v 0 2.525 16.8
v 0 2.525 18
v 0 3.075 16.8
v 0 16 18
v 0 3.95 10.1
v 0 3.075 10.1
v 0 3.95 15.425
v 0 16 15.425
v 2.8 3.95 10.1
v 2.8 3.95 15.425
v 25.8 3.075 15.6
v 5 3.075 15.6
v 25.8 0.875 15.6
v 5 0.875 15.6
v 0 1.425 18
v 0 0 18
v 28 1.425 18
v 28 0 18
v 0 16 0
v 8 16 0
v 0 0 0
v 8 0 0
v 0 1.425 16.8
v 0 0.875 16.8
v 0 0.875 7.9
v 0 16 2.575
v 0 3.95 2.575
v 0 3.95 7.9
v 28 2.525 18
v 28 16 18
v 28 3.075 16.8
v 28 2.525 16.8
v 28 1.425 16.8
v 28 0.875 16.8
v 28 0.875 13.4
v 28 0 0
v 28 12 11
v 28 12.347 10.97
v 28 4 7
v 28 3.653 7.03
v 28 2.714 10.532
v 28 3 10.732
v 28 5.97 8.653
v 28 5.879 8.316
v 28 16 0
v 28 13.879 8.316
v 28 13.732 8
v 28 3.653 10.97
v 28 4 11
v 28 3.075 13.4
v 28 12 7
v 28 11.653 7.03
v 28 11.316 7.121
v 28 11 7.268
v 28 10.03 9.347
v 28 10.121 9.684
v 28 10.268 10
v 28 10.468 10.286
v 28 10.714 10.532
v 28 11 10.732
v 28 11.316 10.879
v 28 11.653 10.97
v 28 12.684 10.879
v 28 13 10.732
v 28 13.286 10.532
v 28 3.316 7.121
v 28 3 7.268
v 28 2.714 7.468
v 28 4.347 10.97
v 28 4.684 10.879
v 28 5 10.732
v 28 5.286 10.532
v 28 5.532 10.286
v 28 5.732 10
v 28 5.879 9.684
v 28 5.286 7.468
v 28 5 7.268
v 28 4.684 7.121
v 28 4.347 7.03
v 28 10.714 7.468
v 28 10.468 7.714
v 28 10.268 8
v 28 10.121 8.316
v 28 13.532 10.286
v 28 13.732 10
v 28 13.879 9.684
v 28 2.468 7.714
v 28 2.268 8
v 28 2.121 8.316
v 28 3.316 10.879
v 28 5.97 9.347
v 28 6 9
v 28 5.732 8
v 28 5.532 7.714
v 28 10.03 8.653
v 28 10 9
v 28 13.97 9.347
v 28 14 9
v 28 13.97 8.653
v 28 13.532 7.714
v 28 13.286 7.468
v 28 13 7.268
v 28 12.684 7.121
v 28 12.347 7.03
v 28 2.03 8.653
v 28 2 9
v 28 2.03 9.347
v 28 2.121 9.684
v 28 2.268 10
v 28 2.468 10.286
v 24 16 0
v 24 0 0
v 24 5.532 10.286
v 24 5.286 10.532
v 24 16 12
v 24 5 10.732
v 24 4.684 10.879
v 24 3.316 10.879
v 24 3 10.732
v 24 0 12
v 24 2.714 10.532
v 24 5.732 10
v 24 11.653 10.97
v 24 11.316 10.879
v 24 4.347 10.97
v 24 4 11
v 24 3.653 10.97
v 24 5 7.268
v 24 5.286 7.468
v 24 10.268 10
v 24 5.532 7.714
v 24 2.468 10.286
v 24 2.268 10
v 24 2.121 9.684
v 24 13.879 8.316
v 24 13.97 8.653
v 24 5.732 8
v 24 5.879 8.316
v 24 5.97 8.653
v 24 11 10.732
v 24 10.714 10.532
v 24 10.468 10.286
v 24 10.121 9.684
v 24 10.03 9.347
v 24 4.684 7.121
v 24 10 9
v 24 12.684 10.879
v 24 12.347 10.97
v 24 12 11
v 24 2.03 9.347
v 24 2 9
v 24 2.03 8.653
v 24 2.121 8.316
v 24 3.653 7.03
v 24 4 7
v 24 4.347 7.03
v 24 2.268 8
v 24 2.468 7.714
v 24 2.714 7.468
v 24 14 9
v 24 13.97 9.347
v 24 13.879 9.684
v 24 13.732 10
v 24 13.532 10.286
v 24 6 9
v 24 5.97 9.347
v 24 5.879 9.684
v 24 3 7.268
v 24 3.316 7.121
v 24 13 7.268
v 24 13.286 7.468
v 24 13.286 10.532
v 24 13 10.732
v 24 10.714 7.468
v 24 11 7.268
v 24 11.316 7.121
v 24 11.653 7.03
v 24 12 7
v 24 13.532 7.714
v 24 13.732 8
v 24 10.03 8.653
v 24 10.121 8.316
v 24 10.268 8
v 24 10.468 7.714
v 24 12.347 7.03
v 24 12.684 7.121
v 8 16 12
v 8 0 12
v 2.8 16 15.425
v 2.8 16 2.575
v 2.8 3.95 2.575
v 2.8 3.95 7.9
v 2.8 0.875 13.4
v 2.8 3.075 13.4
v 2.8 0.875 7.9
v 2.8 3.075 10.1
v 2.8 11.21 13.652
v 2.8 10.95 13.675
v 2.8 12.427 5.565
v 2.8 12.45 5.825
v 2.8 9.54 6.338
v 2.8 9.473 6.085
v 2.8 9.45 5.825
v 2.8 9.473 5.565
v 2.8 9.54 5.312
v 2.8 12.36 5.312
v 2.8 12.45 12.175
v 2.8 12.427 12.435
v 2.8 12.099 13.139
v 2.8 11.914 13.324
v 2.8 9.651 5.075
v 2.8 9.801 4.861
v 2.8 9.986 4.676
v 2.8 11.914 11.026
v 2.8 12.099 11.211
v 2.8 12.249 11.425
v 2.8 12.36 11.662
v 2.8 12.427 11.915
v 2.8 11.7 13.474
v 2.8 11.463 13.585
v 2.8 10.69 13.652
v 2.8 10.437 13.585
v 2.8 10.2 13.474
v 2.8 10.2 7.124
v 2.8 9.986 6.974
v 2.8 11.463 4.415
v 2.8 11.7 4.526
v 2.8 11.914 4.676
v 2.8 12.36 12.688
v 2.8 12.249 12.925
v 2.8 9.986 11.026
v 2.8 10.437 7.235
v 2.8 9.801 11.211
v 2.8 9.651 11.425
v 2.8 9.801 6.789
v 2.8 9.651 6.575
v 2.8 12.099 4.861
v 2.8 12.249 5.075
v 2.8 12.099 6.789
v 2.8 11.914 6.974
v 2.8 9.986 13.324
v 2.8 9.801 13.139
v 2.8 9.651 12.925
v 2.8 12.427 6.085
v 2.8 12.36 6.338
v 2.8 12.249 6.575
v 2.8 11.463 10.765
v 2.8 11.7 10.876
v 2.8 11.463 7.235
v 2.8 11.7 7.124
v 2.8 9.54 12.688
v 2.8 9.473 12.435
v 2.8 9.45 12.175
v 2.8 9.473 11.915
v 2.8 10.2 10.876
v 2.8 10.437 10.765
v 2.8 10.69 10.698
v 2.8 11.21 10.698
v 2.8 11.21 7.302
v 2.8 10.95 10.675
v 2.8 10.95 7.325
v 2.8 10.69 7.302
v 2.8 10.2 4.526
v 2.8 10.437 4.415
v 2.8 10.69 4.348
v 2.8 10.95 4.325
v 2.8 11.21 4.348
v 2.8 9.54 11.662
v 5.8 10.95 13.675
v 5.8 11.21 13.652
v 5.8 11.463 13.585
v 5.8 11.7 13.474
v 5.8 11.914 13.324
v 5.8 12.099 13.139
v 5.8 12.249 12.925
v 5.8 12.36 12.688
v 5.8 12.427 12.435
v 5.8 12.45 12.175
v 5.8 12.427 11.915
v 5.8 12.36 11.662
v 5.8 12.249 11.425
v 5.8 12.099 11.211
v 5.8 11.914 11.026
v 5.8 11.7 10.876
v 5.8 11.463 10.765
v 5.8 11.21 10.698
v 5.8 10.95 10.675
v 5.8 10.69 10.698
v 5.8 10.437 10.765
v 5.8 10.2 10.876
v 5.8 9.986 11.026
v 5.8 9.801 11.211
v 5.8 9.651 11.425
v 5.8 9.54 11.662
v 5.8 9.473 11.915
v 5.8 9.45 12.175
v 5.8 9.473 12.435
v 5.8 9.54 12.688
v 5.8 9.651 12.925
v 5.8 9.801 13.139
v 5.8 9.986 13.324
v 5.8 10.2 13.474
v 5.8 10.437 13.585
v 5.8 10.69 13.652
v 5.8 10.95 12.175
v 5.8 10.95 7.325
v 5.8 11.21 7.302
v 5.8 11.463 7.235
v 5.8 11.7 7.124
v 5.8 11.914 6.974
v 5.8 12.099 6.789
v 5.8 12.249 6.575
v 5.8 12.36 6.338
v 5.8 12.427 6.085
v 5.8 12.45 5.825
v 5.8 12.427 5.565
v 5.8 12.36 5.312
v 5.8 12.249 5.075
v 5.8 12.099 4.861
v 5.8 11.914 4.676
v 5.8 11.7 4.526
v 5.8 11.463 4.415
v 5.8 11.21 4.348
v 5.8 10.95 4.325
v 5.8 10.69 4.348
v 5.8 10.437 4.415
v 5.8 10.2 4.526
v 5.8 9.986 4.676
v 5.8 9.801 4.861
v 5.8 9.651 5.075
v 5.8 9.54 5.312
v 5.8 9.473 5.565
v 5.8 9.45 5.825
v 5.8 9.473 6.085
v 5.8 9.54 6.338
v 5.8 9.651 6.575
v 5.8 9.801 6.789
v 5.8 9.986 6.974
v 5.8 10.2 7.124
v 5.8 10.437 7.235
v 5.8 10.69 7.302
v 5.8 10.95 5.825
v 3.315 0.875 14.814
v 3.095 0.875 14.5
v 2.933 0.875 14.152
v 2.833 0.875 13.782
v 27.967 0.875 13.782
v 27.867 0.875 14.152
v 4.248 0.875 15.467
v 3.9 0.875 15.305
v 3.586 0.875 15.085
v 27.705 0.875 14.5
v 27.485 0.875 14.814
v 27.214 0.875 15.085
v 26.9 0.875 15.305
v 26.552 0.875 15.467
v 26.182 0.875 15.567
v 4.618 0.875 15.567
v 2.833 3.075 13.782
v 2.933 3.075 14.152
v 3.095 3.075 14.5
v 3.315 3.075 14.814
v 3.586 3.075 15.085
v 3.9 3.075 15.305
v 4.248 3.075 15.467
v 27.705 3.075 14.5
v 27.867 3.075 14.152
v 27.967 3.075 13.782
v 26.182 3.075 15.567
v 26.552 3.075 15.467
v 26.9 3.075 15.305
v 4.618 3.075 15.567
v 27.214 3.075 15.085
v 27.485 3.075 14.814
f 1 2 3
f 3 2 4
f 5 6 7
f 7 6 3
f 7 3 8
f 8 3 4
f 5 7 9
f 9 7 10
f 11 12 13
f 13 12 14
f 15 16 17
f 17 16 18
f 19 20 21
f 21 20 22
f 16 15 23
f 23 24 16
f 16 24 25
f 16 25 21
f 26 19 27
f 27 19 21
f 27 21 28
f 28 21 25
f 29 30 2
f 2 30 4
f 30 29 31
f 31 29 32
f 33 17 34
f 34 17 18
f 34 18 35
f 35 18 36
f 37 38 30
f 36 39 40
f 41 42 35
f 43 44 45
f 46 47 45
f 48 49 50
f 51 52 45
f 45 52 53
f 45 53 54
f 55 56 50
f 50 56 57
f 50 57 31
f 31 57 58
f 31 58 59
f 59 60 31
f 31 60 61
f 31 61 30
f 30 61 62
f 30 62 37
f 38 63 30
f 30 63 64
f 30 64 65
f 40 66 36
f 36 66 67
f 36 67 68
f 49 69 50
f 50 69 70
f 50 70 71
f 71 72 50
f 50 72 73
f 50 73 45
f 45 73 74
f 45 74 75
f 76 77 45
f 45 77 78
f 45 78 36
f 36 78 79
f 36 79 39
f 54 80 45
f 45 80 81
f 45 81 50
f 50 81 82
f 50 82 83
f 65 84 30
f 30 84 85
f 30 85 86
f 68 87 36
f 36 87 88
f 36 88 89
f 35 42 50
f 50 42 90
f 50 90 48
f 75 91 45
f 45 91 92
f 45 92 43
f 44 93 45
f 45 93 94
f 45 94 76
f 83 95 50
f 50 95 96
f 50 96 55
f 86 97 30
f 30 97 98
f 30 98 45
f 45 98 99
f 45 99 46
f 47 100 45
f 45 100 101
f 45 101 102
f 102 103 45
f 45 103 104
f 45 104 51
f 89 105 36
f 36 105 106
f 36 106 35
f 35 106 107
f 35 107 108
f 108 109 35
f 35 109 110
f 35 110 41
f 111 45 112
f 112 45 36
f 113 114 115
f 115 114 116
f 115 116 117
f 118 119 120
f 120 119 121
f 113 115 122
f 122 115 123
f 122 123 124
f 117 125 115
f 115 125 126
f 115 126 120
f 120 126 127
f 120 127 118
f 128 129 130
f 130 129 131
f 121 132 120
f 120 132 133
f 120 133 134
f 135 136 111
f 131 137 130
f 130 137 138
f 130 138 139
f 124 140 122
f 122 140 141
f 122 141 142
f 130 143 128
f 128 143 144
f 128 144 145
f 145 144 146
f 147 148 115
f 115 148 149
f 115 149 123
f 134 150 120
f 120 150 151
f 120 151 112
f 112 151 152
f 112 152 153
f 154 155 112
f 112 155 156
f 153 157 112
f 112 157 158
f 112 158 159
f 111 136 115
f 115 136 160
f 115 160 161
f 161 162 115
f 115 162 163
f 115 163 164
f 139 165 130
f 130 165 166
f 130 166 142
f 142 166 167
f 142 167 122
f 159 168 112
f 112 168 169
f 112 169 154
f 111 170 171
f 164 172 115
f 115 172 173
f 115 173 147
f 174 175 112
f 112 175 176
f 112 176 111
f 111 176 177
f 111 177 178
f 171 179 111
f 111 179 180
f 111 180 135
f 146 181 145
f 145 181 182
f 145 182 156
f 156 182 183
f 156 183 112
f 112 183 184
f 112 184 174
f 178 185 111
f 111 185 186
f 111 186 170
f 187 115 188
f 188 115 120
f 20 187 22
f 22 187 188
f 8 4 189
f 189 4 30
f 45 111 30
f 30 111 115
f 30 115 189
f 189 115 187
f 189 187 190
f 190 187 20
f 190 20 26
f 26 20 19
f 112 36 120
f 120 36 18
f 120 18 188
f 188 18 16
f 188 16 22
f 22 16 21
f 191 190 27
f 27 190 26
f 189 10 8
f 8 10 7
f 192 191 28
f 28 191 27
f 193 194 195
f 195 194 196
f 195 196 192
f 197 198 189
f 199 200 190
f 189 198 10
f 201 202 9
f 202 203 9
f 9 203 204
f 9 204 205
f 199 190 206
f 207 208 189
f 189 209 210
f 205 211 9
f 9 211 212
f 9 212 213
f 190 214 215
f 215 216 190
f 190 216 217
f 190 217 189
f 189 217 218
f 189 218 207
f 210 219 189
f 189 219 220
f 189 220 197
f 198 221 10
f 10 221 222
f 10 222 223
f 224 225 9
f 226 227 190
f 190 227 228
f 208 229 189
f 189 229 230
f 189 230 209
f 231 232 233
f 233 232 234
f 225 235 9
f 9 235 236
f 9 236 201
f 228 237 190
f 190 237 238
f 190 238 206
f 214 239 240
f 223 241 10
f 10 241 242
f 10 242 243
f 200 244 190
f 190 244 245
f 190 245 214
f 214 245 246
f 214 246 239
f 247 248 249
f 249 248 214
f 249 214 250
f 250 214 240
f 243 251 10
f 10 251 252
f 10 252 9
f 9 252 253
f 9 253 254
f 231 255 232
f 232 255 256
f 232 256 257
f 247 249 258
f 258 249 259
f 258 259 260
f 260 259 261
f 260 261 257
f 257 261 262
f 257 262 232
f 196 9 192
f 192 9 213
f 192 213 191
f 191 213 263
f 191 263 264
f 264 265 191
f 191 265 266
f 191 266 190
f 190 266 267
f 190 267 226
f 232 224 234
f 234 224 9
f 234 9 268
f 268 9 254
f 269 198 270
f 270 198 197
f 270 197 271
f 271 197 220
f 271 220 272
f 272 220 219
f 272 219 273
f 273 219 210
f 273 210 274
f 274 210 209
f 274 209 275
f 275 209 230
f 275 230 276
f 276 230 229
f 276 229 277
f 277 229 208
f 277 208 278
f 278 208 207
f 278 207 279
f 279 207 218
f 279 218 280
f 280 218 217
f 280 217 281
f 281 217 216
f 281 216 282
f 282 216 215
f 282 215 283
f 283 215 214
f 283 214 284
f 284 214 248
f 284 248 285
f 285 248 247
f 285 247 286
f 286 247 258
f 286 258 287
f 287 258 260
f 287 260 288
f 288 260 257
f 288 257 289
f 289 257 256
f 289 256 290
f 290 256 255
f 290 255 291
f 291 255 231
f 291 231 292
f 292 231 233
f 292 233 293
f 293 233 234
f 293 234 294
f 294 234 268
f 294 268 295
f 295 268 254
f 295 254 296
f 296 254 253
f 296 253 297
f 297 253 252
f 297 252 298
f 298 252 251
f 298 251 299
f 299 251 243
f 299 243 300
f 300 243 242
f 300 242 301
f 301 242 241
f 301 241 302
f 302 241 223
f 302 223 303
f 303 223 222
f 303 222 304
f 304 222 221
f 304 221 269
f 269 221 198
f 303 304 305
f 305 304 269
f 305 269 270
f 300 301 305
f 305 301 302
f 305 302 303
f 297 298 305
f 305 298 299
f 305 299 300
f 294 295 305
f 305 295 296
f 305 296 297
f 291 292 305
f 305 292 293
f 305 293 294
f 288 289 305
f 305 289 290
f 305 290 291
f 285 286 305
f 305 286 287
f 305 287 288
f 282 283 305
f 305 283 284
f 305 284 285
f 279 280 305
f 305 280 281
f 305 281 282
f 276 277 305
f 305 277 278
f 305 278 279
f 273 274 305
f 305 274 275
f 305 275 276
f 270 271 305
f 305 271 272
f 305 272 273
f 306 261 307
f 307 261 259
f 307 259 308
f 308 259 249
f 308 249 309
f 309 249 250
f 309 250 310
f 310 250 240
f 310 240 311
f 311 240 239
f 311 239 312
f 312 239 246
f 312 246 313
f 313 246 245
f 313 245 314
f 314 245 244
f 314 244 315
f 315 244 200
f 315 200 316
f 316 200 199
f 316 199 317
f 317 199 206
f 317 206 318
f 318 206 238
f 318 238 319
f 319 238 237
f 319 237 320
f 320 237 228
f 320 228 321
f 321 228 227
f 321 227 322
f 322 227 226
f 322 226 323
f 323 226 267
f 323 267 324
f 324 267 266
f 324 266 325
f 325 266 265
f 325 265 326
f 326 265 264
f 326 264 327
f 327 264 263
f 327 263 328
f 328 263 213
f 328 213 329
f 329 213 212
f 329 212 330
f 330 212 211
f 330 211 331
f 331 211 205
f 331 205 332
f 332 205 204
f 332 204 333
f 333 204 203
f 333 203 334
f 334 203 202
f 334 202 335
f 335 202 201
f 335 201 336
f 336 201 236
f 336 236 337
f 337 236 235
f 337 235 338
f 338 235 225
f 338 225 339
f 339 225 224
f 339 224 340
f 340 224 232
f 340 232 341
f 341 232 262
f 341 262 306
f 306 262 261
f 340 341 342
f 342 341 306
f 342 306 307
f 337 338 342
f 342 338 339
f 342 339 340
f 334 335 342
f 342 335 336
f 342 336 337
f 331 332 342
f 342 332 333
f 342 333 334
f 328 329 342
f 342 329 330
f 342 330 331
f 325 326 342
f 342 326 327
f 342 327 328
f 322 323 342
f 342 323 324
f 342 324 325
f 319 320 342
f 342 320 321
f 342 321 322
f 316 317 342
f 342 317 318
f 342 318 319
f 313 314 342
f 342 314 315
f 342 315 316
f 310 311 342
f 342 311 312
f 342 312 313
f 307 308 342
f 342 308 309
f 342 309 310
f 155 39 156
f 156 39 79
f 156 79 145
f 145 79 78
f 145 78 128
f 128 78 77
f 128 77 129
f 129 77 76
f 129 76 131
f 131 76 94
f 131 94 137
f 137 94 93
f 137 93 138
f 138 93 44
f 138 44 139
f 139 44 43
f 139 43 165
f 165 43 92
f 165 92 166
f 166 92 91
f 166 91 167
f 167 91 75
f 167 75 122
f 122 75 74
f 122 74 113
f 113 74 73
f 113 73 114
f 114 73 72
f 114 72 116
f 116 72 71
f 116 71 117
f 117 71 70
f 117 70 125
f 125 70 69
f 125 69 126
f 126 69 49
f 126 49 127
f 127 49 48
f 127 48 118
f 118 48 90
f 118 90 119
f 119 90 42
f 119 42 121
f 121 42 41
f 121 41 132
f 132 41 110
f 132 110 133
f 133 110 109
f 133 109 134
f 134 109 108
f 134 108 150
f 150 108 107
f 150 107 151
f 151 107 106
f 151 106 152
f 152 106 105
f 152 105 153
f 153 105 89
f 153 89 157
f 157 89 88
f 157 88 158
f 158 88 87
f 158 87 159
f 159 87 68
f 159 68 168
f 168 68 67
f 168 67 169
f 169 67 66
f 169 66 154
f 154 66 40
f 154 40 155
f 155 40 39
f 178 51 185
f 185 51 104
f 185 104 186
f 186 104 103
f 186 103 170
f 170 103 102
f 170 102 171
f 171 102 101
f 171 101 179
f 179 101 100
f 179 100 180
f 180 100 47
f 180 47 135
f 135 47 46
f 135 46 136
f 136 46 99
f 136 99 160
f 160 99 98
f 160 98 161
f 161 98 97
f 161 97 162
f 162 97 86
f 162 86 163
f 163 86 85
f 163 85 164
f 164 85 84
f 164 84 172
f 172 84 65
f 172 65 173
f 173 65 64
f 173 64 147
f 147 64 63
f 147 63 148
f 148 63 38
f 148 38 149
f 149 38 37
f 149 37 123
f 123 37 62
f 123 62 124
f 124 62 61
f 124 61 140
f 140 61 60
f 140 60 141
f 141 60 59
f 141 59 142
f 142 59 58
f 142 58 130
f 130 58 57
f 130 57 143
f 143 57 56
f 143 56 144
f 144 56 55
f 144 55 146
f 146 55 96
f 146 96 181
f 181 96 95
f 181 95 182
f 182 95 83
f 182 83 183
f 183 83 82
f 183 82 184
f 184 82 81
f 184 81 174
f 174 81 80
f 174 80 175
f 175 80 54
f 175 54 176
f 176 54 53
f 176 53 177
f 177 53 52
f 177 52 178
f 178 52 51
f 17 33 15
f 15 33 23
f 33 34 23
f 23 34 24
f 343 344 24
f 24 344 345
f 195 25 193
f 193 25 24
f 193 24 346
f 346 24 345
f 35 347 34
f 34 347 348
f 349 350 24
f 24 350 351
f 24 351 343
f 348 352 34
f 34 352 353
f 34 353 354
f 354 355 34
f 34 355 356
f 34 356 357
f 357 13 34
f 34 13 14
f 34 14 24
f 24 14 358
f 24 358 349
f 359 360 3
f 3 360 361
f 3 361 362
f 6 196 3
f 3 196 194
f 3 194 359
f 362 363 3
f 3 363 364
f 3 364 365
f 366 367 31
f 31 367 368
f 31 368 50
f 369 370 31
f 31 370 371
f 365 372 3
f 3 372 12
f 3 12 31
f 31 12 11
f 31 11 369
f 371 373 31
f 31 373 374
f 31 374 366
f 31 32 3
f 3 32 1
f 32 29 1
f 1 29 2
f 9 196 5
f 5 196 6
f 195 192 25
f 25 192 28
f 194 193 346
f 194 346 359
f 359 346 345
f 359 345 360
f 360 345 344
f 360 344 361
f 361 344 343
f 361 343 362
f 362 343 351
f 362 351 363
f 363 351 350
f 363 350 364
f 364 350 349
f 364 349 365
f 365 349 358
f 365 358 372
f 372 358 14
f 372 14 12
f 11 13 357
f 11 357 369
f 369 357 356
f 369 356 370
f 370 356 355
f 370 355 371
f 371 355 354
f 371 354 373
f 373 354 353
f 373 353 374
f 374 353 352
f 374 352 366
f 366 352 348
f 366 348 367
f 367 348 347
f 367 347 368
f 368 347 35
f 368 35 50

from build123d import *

# Parameters (mm, degrees)
PROFILEBOSS_EXTRUDE1_DEPTH        = 16
MICROSWITCHHOLESKETCH3_W          = 12.85
MICROSWITCHHOLESKETCH3_H          = 12.05
MICROSWITCHHOLECUT_EXTRUDE1_DEPTH = 2.8
MICROSWITCHHOLESKETCH4_R          = 1.5
MICROSWITCHHOLECUT_EXTRUDE2_DEPTH = 3
CLAMPHOLECUT_EXTRUDE4_REACH       = 38.932
CLAMPHOLESSKETCH6_R               = 2
LONGWIRECHANNELCUT_EXTRUDE5_DEPTH = 37.932370625
CUT_EXTRUDE6_DEPTH                = 2.8
FILLET1_R                         = 2.2
FILLET2_R                         = 2.2


with BuildPart() as part:
    # ProfileSketch2 → ProfileBoss-Extrude1 (new body)
    with BuildSketch(Plane(origin=(0, 0, 0), x_dir=(1, 0, 0), z_dir=(0, 1, 0))):
        Polygon((0, 0), (0, -18), (28, -18), (28, 0), (24, 0), (24, -12), (8, -12), (8, 0), align=None)
    extrude(amount=PROFILEBOSS_EXTRUDE1_DEPTH)

    # MicroSwitchHoleSketch3 → MicroSwitchHoleCut-Extrude1 (cut)
    with BuildSketch(Plane.ZY):
        with Locations((9, 9.975)):
            Rectangle(MICROSWITCHHOLESKETCH3_W, MICROSWITCHHOLESKETCH3_H)
    extrude(amount=-MICROSWITCHHOLECUT_EXTRUDE1_DEPTH, mode=Mode.SUBTRACT)

    # MicroSwitchHoleSketch4 → MicroSwitchHoleCut-Extrude2 (cut)
    with BuildSketch(Plane.ZY.offset(-2.8)):
        with Locations((5.825, 10.95)):
            Circle(MICROSWITCHHOLESKETCH4_R)
        with Locations((12.175, 10.95)):
            Circle(MICROSWITCHHOLESKETCH4_R)
    extrude(amount=-MICROSWITCHHOLECUT_EXTRUDE2_DEPTH, mode=Mode.SUBTRACT)

    # ClampHolesSketch6 → ClampHoleCut-Extrude4 (cut, up to next)
    with BuildSketch(Plane(origin=(28, 0, 0), x_dir=(0, 0, -1), z_dir=(1, 0, 0)), mode=Mode.PRIVATE) as clampholecut_extrude4_sk1:
        with Locations((-9, 12)):
            Circle(CLAMPHOLESSKETCH6_R)
    clampholecut_extrude4_tool1 = extrude(clampholecut_extrude4_sk1.sketch, amount=-CLAMPHOLECUT_EXTRUDE4_REACH, mode=Mode.PRIVATE) & part.part
    # ClampHolesSketch6 → ClampHoleCut-Extrude4 (cut, up to next)
    with BuildSketch(Plane(origin=(28, 0, 0), x_dir=(0, 0, -1), z_dir=(1, 0, 0)), mode=Mode.PRIVATE) as clampholecut_extrude4_sk2:
        with Locations((-9, 4)):
            Circle(CLAMPHOLESSKETCH6_R)
    clampholecut_extrude4_tool2 = extrude(clampholecut_extrude4_sk2.sketch, amount=-CLAMPHOLECUT_EXTRUDE4_REACH, mode=Mode.PRIVATE) & part.part
    add(clampholecut_extrude4_tool1.solids().sort_by_distance((28, 12, 9))[0], mode=Mode.SUBTRACT)
    add(clampholecut_extrude4_tool2.solids().sort_by_distance((28, 4, 9))[0], mode=Mode.SUBTRACT)

    # LongWireChannelSketch7 → LongWireChannelCut-Extrude5 (cut, through all)
    with BuildSketch(Plane.ZY):
        Polygon((18, 2.525), (16.8, 2.525), (16.8, 3.075), (15.6, 3.075), (15.6, 0.875), (16.8, 0.875), (16.8, 1.425), (18, 1.425), align=None)
    extrude(amount=-LONGWIRECHANNELCUT_EXTRUDE5_DEPTH, mode=Mode.SUBTRACT)

    # ShortWireChannelSketch8 → Cut-Extrude6 (cut)
    with BuildSketch(Plane.ZY):
        Polygon((7.9, 3.95), (7.9, 0.875), (15.6, 0.875), (15.6, 3.075), (10.1, 3.075), (10.1, 3.95), align=None)
    extrude(amount=-CUT_EXTRUDE6_DEPTH, mode=Mode.SUBTRACT)

    # Fillet1
    fillet1_edges = [part.edges().sort_by_distance(p)[0] for p in [
        (2.8, 1.975, 15.6),
    ]]
    fillet(fillet1_edges, radius=FILLET1_R)

    # Fillet2
    fillet2_edges = [part.edges().sort_by_distance(p)[0] for p in [
        (28, 1.975, 15.6),
    ]]
    fillet(fillet2_edges, radius=FILLET2_R)


solid = part.part
